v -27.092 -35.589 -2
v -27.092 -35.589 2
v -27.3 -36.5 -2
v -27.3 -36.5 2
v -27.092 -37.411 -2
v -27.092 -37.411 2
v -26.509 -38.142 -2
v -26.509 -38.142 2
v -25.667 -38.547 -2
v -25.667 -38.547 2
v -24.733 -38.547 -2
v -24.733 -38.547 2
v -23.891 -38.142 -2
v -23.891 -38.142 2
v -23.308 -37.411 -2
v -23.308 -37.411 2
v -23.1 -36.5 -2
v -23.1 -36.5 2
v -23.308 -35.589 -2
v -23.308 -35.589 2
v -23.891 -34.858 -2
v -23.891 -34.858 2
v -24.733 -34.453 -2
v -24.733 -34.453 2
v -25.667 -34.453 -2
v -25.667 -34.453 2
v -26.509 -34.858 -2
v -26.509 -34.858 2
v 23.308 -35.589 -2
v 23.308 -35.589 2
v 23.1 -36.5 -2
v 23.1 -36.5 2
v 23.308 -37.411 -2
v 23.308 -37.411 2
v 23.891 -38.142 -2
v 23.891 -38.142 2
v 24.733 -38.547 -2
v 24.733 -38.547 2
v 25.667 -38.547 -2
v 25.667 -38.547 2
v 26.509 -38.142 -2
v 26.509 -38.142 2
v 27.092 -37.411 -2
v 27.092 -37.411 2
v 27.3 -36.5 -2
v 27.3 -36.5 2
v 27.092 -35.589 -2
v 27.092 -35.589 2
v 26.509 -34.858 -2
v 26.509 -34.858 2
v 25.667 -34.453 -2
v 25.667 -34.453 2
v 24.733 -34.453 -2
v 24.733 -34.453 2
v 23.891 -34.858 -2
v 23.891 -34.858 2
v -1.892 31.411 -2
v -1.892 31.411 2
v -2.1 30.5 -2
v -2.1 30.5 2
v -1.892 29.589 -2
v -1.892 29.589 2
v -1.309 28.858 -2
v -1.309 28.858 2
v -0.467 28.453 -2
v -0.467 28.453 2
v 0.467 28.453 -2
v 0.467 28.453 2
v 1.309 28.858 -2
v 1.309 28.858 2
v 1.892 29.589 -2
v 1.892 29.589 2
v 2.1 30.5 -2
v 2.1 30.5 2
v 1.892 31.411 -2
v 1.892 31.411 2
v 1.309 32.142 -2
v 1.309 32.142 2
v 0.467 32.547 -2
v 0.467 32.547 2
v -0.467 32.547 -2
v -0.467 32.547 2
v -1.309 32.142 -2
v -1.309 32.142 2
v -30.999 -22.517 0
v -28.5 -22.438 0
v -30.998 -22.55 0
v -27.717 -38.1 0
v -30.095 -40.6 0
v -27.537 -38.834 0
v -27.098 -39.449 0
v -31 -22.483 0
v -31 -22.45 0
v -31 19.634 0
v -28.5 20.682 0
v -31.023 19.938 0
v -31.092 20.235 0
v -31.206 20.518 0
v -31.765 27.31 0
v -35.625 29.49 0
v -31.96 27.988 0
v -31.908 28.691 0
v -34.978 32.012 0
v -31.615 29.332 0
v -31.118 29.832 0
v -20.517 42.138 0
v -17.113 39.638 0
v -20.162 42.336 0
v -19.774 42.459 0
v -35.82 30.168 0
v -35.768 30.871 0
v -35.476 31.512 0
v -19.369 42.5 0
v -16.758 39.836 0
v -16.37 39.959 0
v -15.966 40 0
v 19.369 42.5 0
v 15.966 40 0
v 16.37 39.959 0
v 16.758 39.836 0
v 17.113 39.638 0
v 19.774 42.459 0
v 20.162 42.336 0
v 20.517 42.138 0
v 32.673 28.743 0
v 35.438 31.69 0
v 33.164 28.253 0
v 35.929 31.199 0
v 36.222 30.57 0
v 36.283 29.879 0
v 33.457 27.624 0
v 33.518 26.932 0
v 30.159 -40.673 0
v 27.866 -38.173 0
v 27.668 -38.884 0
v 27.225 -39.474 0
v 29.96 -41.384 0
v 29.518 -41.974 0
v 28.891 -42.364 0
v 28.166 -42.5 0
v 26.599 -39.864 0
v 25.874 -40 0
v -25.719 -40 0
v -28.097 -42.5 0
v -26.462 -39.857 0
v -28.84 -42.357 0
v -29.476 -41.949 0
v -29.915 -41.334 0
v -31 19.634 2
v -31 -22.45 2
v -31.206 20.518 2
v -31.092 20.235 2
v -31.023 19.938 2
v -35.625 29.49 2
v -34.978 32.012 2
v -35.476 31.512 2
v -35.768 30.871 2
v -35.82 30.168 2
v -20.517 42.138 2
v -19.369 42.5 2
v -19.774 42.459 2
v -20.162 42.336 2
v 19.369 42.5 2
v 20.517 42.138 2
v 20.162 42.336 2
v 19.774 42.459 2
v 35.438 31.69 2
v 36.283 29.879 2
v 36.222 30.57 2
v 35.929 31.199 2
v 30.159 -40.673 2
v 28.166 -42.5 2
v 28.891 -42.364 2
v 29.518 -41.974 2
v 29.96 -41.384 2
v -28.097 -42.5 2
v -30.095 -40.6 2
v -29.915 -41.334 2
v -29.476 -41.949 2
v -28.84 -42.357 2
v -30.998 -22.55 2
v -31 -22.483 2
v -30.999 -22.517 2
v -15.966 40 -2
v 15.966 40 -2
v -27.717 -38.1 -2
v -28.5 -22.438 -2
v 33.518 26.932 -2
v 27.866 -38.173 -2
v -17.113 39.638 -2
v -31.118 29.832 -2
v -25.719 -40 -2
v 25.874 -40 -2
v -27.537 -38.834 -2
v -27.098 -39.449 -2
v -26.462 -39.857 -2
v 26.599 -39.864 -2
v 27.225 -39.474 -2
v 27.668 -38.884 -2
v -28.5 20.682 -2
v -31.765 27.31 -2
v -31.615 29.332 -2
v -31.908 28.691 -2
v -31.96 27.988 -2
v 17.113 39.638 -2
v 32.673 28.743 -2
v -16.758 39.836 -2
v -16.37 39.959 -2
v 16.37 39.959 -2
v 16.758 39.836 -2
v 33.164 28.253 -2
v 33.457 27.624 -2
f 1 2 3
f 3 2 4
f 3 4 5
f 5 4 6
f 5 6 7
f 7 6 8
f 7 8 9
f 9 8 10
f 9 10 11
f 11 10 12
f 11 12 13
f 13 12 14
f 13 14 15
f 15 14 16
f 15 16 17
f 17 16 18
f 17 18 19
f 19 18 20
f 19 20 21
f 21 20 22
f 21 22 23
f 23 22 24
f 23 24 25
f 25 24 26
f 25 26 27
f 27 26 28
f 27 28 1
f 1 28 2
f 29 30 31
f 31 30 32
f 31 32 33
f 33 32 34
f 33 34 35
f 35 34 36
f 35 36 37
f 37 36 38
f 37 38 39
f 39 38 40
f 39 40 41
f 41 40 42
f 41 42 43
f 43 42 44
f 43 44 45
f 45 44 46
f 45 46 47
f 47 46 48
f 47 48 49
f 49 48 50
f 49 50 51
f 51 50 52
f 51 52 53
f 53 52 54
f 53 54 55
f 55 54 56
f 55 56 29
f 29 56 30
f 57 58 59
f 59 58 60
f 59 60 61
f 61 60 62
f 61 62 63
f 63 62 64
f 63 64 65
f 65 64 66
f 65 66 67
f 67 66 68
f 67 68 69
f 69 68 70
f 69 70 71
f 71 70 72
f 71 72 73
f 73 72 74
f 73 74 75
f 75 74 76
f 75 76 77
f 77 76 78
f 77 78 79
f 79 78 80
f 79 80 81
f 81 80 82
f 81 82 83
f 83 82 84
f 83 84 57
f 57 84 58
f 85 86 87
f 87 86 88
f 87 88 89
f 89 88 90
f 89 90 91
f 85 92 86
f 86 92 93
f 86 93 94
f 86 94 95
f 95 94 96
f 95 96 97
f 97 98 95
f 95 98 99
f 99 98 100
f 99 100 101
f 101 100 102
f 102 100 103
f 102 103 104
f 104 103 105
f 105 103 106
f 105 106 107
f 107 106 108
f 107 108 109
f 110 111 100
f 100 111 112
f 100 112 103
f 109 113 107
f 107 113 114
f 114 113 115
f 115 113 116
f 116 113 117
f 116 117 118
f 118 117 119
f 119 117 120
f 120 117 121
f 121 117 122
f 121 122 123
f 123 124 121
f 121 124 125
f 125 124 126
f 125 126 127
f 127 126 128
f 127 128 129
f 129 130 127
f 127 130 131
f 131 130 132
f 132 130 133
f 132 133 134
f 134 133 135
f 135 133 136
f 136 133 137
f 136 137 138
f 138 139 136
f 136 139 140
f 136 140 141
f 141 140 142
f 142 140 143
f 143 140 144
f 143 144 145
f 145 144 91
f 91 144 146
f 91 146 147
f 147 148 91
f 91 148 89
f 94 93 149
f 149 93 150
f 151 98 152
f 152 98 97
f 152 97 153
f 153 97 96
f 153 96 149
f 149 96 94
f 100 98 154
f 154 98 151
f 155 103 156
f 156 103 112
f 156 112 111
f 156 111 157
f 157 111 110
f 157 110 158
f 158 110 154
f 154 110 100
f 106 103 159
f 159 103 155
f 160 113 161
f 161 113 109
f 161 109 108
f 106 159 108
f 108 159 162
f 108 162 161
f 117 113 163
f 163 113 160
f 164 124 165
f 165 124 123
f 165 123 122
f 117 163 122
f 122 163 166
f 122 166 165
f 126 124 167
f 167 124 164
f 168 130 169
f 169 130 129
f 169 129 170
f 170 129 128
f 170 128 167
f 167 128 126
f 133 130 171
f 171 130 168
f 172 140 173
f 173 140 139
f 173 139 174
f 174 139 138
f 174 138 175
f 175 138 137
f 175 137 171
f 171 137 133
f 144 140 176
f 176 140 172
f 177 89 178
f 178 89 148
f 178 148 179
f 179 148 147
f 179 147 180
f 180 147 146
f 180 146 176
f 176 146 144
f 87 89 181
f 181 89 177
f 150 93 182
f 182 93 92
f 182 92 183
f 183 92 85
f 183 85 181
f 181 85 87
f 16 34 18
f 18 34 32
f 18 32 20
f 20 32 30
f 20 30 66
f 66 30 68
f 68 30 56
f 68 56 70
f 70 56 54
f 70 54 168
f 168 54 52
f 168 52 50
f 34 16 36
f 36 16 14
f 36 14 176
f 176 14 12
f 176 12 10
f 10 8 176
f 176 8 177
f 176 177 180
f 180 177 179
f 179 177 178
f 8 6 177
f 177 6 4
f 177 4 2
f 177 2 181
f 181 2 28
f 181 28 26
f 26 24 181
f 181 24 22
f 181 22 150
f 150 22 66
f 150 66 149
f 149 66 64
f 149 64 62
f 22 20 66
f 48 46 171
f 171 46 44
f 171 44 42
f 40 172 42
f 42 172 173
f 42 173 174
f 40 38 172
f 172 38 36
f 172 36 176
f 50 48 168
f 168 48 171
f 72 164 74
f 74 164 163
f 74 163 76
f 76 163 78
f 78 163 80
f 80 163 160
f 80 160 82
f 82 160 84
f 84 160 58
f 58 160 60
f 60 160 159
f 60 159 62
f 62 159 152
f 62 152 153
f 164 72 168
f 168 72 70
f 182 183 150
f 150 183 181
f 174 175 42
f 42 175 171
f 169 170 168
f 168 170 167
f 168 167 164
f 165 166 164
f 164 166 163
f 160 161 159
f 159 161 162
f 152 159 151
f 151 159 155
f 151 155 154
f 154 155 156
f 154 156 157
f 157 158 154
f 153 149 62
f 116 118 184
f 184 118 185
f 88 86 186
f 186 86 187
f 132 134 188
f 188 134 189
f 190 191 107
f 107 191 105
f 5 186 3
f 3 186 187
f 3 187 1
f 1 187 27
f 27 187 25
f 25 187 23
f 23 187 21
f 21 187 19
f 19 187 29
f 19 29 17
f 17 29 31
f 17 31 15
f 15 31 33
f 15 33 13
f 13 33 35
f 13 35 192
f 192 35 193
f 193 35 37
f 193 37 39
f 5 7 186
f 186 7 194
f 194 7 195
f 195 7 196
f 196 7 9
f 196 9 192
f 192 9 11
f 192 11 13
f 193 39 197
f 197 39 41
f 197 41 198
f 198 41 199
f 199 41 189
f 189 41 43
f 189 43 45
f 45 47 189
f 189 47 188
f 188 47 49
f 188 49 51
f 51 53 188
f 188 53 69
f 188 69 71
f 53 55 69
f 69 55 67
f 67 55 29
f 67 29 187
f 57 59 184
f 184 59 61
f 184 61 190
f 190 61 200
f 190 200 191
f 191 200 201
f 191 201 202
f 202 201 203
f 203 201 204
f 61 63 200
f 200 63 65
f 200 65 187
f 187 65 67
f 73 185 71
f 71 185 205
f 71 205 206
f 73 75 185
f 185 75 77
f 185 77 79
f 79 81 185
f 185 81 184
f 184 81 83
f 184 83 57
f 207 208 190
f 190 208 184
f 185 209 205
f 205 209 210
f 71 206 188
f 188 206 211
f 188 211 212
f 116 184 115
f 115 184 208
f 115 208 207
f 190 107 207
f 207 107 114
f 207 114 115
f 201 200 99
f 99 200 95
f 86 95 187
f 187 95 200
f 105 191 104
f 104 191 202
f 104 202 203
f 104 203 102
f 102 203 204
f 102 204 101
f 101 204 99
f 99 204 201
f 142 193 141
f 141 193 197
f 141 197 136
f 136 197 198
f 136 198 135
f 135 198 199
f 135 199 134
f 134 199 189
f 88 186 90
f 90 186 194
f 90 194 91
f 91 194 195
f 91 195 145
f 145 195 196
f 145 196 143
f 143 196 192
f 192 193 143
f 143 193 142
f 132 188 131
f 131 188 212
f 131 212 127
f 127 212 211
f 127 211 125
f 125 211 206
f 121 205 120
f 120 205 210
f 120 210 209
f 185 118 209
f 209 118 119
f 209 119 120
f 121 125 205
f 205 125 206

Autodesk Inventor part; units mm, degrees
ref_plane "YZ Plane" through (0, 0, 0) normal (1, 0, 0) x (0, 1, 0)
ref_plane "XZ Plane" through (0, 0, 0) normal (0, 1, 0) x (-1, 0, 0)
ref_plane "XY Plane" through (0, 0, 0) normal (0, 0, 1) x (1, 0, 0)
ref_plane "Arbeitsebene1" through (0, 0, 0) normal (0, 0, 1) x (1, 0, 0)
sketch "Skizze1" plane through (0, 0, 0) normal (0, 0, 1) x (1, 0, 0)
  line L0 (-29, -22.45) -> (-29, 20.1) projected
  line L1 (-29.2058, 20.9837) -> (-32.4027, 27.4738) projected
  line L2 (-17.2708, 40.1383) -> (-31.7557, 29.9959) projected
  line L3 (-16.1236, 40.5) -> (16.1236, 40.5) projected
  line L4 (33.1958, 28.9875) -> (17.2708, 40.1383) projected
  line L5 (34.0411, 27.1762) -> (28.1661, -40.5) projected
  line L6 (28.1661, -40.5) -> (-28.0975, -40.5) projected
  line L7 (-28.0975, -40.5) -> (-29, -22.45) projected
  line L8 (-30.9975, -22.5499) -> (-30.095, -40.5999) projected
  line L9 (-28.0975, -42.5) -> (28.1661, -42.5) projected
  line L10 (30.1586, -40.673) -> (36.2833, 29.879) projected
  line L11 (35.4379, 31.6903) -> (20.5166, 42.1383) projected
  line L12 (19.3694, 42.5) -> (-19.3694, 42.5) projected
  line L13 (-20.5166, 42.1383) -> (-34.9783, 32.0121) projected
  line L14 (-35.6253, 29.4901) -> (-31.2058, 20.5179) projected
  line L15 (-31, 19.6342) -> (-31, -22.45) projected
  line L16 (-32.5225, 28.8486) -> (-28.5, 20.6823)
  line L17 (-28.5, 20.6823) -> (-28.5, -22.4375)
  line L18 (-28.5, -22.4375) -> (-27.6219, -40)
  line L19 (-27.6219, -40) -> (27.7076, -40)
  line L20 (27.7076, -40) -> (33.6178, 28.0816)
  line L21 (33.6178, 28.0816) -> (16.5966, 40)
  line L22 (16.5966, 40) -> (-16.5966, 40)
  line L23 (-16.5966, 40) -> (-32.5225, 28.8486)
  arc A0 (-29, 20.1) -> (-29.2058, 20.9837) centre (-31, 20.1) ccw projected
  arc A1 (-31.7557, 29.9959) -> (-32.4027, 27.4738) centre (-30.6085, 28.3576) ccw projected
  arc A2 (-16.1236, 40.5) -> (-17.2708, 40.1383) centre (-16.1236, 38.5) ccw projected
  arc A3 (17.2708, 40.1383) -> (16.1236, 40.5) centre (16.1236, 38.5) ccw projected
  arc A4 (34.0411, 27.1762) -> (33.1958, 28.9875) centre (32.0486, 27.3492) ccw projected
  arc A5 (-31, -22.45) -> (-30.9975, -22.5499) centre (-29, -22.45) ccw projected
  arc A6 (-30.095, -40.5999) -> (-28.0975, -42.5) centre (-28.0975, -40.5) ccw projected
  arc A7 (28.1661, -42.5) -> (30.1586, -40.673) centre (28.1661, -40.5) ccw projected
  arc A8 (36.2833, 29.879) -> (35.4379, 31.6903) centre (34.2907, 30.052) ccw projected
  arc A9 (20.5166, 42.1383) -> (19.3694, 42.5) centre (19.3694, 40.5) ccw projected
  arc A10 (-19.3694, 42.5) -> (-20.5166, 42.1383) centre (-19.3694, 40.5) ccw projected
  arc A11 (-34.9783, 32.0121) -> (-35.6253, 29.4901) centre (-33.8311, 30.3738) ccw projected
  arc A12 (-31, 19.6342) -> (-31.2058, 20.5179) centre (-33, 19.6342) ccw projected
  point P0 (0, 0)
  dimension "d2" = 0.5
extrude "Extrusion1" add sketch "Skizze1" against normal blind 2 contours L23 L22 L21 L20 L19 L18 L17 L16
sketch "Skizze2" plane through (0, 0, 0) normal (0, 0, 1) x (-1, 0, 0)
  point P0 (0, 0)
sketch "Skizze3" plane through (0, 0, 0) normal (0, 0, 1) x (1, 0, 0)
  line L0 (-29, -22.45) -> (-29, 20.1) projected
  line L1 (-29.2058, 20.9837) -> (-32.4027, 27.4738) projected
  line L2 (-17.2708, 40.1383) -> (-31.7557, 29.9959) projected
  line L3 (-16.1236, 40.5) -> (16.1236, 40.5) projected
  line L4 (33.1958, 28.9875) -> (17.2708, 40.1383) projected
  line L5 (34.0411, 27.1762) -> (28.1661, -40.5) projected
  line L6 (28.1661, -40.5) -> (-28.0975, -40.5) projected
  line L7 (-28.0975, -40.5) -> (-29, -22.45) projected
  line L8 (-30.9975, -22.5499) -> (-30.095, -40.5999) projected
  line L9 (-28.0975, -42.5) -> (28.1661, -42.5) projected
  line L10 (30.1586, -40.673) -> (36.2833, 29.879) projected
  line L11 (35.4379, 31.6903) -> (20.5166, 42.1383) projected
  line L12 (19.3694, 42.5) -> (-19.3694, 42.5) projected
  line L13 (-20.5166, 42.1383) -> (-34.9783, 32.0121) projected
  line L14 (-35.6253, 29.4901) -> (-31.2058, 20.5179) projected
  line L15 (-31, 19.6342) -> (-31, -22.45) projected
  arc A0 (-29, 20.1) -> (-29.2058, 20.9837) centre (-31, 20.1) ccw projected
  arc A1 (-31.7557, 29.9959) -> (-32.4027, 27.4738) centre (-30.6085, 28.3576) ccw projected
  arc A2 (-16.1236, 40.5) -> (-17.2708, 40.1383) centre (-16.1236, 38.5) ccw projected
  arc A3 (17.2708, 40.1383) -> (16.1236, 40.5) centre (16.1236, 38.5) ccw projected
  arc A4 (34.0411, 27.1762) -> (33.1958, 28.9875) centre (32.0486, 27.3492) ccw projected
  arc A5 (-31, -22.45) -> (-30.9975, -22.5499) centre (-29, -22.45) ccw projected
  arc A6 (-30.095, -40.5999) -> (-28.0975, -42.5) centre (-28.0975, -40.5) ccw projected
  arc A7 (28.1661, -42.5) -> (30.1586, -40.673) centre (28.1661, -40.5) ccw projected
  arc A8 (36.2833, 29.879) -> (35.4379, 31.6903) centre (34.2907, 30.052) ccw projected
  arc A9 (20.5166, 42.1383) -> (19.3694, 42.5) centre (19.3694, 40.5) ccw projected
  arc A10 (-19.3694, 42.5) -> (-20.5166, 42.1383) centre (-19.3694, 40.5) ccw projected
  arc A11 (-34.9783, 32.0121) -> (-35.6253, 29.4901) centre (-33.8311, 30.3738) ccw projected
  arc A12 (-31, 19.6342) -> (-31.2058, 20.5179) centre (-33, 19.6342) ccw projected
  point P0 (0, 0)
extrude "Extrusion2" add sketch "Skizze3" along normal blind 2 contours L0 A0 L1 A1 L2 A2 L3 A3 L4 A4 L5 L6 L7 | A5 L15 A12 L14 A11 L13 A10 L12 A9 L11 A8 L10 A7 L9 A6 L8
sketch "Skizze4" plane through (0, 0, 2) normal (0, 0, 1) x (1, 0, 0)
  circle A0 centre (-25.2, -36.5) radius 1.5 projected
  circle A1 centre (25.2, -36.5) radius 1.5 projected
  circle A2 centre (0, 30.5) radius 1.5 projected
  point P0 (0, 0)
hole "Bohrung1" at (0, 30.5, 2) at (25.2, -36.5, 2) at (-25.2, -36.5, 2) direction (0, 0, -1) diameter 4.2 end through all
fillet "Rundung1" radius 2 6 edges at (27.7076, -40, -1) (-27.6219, -40, -1) (33.6178, 28.0816, -1) (16.5966, 40, -1) (-32.5225, 28.8486, -1) (-16.5966, 40, -1)
properties part number "Deckel_oberteil"
